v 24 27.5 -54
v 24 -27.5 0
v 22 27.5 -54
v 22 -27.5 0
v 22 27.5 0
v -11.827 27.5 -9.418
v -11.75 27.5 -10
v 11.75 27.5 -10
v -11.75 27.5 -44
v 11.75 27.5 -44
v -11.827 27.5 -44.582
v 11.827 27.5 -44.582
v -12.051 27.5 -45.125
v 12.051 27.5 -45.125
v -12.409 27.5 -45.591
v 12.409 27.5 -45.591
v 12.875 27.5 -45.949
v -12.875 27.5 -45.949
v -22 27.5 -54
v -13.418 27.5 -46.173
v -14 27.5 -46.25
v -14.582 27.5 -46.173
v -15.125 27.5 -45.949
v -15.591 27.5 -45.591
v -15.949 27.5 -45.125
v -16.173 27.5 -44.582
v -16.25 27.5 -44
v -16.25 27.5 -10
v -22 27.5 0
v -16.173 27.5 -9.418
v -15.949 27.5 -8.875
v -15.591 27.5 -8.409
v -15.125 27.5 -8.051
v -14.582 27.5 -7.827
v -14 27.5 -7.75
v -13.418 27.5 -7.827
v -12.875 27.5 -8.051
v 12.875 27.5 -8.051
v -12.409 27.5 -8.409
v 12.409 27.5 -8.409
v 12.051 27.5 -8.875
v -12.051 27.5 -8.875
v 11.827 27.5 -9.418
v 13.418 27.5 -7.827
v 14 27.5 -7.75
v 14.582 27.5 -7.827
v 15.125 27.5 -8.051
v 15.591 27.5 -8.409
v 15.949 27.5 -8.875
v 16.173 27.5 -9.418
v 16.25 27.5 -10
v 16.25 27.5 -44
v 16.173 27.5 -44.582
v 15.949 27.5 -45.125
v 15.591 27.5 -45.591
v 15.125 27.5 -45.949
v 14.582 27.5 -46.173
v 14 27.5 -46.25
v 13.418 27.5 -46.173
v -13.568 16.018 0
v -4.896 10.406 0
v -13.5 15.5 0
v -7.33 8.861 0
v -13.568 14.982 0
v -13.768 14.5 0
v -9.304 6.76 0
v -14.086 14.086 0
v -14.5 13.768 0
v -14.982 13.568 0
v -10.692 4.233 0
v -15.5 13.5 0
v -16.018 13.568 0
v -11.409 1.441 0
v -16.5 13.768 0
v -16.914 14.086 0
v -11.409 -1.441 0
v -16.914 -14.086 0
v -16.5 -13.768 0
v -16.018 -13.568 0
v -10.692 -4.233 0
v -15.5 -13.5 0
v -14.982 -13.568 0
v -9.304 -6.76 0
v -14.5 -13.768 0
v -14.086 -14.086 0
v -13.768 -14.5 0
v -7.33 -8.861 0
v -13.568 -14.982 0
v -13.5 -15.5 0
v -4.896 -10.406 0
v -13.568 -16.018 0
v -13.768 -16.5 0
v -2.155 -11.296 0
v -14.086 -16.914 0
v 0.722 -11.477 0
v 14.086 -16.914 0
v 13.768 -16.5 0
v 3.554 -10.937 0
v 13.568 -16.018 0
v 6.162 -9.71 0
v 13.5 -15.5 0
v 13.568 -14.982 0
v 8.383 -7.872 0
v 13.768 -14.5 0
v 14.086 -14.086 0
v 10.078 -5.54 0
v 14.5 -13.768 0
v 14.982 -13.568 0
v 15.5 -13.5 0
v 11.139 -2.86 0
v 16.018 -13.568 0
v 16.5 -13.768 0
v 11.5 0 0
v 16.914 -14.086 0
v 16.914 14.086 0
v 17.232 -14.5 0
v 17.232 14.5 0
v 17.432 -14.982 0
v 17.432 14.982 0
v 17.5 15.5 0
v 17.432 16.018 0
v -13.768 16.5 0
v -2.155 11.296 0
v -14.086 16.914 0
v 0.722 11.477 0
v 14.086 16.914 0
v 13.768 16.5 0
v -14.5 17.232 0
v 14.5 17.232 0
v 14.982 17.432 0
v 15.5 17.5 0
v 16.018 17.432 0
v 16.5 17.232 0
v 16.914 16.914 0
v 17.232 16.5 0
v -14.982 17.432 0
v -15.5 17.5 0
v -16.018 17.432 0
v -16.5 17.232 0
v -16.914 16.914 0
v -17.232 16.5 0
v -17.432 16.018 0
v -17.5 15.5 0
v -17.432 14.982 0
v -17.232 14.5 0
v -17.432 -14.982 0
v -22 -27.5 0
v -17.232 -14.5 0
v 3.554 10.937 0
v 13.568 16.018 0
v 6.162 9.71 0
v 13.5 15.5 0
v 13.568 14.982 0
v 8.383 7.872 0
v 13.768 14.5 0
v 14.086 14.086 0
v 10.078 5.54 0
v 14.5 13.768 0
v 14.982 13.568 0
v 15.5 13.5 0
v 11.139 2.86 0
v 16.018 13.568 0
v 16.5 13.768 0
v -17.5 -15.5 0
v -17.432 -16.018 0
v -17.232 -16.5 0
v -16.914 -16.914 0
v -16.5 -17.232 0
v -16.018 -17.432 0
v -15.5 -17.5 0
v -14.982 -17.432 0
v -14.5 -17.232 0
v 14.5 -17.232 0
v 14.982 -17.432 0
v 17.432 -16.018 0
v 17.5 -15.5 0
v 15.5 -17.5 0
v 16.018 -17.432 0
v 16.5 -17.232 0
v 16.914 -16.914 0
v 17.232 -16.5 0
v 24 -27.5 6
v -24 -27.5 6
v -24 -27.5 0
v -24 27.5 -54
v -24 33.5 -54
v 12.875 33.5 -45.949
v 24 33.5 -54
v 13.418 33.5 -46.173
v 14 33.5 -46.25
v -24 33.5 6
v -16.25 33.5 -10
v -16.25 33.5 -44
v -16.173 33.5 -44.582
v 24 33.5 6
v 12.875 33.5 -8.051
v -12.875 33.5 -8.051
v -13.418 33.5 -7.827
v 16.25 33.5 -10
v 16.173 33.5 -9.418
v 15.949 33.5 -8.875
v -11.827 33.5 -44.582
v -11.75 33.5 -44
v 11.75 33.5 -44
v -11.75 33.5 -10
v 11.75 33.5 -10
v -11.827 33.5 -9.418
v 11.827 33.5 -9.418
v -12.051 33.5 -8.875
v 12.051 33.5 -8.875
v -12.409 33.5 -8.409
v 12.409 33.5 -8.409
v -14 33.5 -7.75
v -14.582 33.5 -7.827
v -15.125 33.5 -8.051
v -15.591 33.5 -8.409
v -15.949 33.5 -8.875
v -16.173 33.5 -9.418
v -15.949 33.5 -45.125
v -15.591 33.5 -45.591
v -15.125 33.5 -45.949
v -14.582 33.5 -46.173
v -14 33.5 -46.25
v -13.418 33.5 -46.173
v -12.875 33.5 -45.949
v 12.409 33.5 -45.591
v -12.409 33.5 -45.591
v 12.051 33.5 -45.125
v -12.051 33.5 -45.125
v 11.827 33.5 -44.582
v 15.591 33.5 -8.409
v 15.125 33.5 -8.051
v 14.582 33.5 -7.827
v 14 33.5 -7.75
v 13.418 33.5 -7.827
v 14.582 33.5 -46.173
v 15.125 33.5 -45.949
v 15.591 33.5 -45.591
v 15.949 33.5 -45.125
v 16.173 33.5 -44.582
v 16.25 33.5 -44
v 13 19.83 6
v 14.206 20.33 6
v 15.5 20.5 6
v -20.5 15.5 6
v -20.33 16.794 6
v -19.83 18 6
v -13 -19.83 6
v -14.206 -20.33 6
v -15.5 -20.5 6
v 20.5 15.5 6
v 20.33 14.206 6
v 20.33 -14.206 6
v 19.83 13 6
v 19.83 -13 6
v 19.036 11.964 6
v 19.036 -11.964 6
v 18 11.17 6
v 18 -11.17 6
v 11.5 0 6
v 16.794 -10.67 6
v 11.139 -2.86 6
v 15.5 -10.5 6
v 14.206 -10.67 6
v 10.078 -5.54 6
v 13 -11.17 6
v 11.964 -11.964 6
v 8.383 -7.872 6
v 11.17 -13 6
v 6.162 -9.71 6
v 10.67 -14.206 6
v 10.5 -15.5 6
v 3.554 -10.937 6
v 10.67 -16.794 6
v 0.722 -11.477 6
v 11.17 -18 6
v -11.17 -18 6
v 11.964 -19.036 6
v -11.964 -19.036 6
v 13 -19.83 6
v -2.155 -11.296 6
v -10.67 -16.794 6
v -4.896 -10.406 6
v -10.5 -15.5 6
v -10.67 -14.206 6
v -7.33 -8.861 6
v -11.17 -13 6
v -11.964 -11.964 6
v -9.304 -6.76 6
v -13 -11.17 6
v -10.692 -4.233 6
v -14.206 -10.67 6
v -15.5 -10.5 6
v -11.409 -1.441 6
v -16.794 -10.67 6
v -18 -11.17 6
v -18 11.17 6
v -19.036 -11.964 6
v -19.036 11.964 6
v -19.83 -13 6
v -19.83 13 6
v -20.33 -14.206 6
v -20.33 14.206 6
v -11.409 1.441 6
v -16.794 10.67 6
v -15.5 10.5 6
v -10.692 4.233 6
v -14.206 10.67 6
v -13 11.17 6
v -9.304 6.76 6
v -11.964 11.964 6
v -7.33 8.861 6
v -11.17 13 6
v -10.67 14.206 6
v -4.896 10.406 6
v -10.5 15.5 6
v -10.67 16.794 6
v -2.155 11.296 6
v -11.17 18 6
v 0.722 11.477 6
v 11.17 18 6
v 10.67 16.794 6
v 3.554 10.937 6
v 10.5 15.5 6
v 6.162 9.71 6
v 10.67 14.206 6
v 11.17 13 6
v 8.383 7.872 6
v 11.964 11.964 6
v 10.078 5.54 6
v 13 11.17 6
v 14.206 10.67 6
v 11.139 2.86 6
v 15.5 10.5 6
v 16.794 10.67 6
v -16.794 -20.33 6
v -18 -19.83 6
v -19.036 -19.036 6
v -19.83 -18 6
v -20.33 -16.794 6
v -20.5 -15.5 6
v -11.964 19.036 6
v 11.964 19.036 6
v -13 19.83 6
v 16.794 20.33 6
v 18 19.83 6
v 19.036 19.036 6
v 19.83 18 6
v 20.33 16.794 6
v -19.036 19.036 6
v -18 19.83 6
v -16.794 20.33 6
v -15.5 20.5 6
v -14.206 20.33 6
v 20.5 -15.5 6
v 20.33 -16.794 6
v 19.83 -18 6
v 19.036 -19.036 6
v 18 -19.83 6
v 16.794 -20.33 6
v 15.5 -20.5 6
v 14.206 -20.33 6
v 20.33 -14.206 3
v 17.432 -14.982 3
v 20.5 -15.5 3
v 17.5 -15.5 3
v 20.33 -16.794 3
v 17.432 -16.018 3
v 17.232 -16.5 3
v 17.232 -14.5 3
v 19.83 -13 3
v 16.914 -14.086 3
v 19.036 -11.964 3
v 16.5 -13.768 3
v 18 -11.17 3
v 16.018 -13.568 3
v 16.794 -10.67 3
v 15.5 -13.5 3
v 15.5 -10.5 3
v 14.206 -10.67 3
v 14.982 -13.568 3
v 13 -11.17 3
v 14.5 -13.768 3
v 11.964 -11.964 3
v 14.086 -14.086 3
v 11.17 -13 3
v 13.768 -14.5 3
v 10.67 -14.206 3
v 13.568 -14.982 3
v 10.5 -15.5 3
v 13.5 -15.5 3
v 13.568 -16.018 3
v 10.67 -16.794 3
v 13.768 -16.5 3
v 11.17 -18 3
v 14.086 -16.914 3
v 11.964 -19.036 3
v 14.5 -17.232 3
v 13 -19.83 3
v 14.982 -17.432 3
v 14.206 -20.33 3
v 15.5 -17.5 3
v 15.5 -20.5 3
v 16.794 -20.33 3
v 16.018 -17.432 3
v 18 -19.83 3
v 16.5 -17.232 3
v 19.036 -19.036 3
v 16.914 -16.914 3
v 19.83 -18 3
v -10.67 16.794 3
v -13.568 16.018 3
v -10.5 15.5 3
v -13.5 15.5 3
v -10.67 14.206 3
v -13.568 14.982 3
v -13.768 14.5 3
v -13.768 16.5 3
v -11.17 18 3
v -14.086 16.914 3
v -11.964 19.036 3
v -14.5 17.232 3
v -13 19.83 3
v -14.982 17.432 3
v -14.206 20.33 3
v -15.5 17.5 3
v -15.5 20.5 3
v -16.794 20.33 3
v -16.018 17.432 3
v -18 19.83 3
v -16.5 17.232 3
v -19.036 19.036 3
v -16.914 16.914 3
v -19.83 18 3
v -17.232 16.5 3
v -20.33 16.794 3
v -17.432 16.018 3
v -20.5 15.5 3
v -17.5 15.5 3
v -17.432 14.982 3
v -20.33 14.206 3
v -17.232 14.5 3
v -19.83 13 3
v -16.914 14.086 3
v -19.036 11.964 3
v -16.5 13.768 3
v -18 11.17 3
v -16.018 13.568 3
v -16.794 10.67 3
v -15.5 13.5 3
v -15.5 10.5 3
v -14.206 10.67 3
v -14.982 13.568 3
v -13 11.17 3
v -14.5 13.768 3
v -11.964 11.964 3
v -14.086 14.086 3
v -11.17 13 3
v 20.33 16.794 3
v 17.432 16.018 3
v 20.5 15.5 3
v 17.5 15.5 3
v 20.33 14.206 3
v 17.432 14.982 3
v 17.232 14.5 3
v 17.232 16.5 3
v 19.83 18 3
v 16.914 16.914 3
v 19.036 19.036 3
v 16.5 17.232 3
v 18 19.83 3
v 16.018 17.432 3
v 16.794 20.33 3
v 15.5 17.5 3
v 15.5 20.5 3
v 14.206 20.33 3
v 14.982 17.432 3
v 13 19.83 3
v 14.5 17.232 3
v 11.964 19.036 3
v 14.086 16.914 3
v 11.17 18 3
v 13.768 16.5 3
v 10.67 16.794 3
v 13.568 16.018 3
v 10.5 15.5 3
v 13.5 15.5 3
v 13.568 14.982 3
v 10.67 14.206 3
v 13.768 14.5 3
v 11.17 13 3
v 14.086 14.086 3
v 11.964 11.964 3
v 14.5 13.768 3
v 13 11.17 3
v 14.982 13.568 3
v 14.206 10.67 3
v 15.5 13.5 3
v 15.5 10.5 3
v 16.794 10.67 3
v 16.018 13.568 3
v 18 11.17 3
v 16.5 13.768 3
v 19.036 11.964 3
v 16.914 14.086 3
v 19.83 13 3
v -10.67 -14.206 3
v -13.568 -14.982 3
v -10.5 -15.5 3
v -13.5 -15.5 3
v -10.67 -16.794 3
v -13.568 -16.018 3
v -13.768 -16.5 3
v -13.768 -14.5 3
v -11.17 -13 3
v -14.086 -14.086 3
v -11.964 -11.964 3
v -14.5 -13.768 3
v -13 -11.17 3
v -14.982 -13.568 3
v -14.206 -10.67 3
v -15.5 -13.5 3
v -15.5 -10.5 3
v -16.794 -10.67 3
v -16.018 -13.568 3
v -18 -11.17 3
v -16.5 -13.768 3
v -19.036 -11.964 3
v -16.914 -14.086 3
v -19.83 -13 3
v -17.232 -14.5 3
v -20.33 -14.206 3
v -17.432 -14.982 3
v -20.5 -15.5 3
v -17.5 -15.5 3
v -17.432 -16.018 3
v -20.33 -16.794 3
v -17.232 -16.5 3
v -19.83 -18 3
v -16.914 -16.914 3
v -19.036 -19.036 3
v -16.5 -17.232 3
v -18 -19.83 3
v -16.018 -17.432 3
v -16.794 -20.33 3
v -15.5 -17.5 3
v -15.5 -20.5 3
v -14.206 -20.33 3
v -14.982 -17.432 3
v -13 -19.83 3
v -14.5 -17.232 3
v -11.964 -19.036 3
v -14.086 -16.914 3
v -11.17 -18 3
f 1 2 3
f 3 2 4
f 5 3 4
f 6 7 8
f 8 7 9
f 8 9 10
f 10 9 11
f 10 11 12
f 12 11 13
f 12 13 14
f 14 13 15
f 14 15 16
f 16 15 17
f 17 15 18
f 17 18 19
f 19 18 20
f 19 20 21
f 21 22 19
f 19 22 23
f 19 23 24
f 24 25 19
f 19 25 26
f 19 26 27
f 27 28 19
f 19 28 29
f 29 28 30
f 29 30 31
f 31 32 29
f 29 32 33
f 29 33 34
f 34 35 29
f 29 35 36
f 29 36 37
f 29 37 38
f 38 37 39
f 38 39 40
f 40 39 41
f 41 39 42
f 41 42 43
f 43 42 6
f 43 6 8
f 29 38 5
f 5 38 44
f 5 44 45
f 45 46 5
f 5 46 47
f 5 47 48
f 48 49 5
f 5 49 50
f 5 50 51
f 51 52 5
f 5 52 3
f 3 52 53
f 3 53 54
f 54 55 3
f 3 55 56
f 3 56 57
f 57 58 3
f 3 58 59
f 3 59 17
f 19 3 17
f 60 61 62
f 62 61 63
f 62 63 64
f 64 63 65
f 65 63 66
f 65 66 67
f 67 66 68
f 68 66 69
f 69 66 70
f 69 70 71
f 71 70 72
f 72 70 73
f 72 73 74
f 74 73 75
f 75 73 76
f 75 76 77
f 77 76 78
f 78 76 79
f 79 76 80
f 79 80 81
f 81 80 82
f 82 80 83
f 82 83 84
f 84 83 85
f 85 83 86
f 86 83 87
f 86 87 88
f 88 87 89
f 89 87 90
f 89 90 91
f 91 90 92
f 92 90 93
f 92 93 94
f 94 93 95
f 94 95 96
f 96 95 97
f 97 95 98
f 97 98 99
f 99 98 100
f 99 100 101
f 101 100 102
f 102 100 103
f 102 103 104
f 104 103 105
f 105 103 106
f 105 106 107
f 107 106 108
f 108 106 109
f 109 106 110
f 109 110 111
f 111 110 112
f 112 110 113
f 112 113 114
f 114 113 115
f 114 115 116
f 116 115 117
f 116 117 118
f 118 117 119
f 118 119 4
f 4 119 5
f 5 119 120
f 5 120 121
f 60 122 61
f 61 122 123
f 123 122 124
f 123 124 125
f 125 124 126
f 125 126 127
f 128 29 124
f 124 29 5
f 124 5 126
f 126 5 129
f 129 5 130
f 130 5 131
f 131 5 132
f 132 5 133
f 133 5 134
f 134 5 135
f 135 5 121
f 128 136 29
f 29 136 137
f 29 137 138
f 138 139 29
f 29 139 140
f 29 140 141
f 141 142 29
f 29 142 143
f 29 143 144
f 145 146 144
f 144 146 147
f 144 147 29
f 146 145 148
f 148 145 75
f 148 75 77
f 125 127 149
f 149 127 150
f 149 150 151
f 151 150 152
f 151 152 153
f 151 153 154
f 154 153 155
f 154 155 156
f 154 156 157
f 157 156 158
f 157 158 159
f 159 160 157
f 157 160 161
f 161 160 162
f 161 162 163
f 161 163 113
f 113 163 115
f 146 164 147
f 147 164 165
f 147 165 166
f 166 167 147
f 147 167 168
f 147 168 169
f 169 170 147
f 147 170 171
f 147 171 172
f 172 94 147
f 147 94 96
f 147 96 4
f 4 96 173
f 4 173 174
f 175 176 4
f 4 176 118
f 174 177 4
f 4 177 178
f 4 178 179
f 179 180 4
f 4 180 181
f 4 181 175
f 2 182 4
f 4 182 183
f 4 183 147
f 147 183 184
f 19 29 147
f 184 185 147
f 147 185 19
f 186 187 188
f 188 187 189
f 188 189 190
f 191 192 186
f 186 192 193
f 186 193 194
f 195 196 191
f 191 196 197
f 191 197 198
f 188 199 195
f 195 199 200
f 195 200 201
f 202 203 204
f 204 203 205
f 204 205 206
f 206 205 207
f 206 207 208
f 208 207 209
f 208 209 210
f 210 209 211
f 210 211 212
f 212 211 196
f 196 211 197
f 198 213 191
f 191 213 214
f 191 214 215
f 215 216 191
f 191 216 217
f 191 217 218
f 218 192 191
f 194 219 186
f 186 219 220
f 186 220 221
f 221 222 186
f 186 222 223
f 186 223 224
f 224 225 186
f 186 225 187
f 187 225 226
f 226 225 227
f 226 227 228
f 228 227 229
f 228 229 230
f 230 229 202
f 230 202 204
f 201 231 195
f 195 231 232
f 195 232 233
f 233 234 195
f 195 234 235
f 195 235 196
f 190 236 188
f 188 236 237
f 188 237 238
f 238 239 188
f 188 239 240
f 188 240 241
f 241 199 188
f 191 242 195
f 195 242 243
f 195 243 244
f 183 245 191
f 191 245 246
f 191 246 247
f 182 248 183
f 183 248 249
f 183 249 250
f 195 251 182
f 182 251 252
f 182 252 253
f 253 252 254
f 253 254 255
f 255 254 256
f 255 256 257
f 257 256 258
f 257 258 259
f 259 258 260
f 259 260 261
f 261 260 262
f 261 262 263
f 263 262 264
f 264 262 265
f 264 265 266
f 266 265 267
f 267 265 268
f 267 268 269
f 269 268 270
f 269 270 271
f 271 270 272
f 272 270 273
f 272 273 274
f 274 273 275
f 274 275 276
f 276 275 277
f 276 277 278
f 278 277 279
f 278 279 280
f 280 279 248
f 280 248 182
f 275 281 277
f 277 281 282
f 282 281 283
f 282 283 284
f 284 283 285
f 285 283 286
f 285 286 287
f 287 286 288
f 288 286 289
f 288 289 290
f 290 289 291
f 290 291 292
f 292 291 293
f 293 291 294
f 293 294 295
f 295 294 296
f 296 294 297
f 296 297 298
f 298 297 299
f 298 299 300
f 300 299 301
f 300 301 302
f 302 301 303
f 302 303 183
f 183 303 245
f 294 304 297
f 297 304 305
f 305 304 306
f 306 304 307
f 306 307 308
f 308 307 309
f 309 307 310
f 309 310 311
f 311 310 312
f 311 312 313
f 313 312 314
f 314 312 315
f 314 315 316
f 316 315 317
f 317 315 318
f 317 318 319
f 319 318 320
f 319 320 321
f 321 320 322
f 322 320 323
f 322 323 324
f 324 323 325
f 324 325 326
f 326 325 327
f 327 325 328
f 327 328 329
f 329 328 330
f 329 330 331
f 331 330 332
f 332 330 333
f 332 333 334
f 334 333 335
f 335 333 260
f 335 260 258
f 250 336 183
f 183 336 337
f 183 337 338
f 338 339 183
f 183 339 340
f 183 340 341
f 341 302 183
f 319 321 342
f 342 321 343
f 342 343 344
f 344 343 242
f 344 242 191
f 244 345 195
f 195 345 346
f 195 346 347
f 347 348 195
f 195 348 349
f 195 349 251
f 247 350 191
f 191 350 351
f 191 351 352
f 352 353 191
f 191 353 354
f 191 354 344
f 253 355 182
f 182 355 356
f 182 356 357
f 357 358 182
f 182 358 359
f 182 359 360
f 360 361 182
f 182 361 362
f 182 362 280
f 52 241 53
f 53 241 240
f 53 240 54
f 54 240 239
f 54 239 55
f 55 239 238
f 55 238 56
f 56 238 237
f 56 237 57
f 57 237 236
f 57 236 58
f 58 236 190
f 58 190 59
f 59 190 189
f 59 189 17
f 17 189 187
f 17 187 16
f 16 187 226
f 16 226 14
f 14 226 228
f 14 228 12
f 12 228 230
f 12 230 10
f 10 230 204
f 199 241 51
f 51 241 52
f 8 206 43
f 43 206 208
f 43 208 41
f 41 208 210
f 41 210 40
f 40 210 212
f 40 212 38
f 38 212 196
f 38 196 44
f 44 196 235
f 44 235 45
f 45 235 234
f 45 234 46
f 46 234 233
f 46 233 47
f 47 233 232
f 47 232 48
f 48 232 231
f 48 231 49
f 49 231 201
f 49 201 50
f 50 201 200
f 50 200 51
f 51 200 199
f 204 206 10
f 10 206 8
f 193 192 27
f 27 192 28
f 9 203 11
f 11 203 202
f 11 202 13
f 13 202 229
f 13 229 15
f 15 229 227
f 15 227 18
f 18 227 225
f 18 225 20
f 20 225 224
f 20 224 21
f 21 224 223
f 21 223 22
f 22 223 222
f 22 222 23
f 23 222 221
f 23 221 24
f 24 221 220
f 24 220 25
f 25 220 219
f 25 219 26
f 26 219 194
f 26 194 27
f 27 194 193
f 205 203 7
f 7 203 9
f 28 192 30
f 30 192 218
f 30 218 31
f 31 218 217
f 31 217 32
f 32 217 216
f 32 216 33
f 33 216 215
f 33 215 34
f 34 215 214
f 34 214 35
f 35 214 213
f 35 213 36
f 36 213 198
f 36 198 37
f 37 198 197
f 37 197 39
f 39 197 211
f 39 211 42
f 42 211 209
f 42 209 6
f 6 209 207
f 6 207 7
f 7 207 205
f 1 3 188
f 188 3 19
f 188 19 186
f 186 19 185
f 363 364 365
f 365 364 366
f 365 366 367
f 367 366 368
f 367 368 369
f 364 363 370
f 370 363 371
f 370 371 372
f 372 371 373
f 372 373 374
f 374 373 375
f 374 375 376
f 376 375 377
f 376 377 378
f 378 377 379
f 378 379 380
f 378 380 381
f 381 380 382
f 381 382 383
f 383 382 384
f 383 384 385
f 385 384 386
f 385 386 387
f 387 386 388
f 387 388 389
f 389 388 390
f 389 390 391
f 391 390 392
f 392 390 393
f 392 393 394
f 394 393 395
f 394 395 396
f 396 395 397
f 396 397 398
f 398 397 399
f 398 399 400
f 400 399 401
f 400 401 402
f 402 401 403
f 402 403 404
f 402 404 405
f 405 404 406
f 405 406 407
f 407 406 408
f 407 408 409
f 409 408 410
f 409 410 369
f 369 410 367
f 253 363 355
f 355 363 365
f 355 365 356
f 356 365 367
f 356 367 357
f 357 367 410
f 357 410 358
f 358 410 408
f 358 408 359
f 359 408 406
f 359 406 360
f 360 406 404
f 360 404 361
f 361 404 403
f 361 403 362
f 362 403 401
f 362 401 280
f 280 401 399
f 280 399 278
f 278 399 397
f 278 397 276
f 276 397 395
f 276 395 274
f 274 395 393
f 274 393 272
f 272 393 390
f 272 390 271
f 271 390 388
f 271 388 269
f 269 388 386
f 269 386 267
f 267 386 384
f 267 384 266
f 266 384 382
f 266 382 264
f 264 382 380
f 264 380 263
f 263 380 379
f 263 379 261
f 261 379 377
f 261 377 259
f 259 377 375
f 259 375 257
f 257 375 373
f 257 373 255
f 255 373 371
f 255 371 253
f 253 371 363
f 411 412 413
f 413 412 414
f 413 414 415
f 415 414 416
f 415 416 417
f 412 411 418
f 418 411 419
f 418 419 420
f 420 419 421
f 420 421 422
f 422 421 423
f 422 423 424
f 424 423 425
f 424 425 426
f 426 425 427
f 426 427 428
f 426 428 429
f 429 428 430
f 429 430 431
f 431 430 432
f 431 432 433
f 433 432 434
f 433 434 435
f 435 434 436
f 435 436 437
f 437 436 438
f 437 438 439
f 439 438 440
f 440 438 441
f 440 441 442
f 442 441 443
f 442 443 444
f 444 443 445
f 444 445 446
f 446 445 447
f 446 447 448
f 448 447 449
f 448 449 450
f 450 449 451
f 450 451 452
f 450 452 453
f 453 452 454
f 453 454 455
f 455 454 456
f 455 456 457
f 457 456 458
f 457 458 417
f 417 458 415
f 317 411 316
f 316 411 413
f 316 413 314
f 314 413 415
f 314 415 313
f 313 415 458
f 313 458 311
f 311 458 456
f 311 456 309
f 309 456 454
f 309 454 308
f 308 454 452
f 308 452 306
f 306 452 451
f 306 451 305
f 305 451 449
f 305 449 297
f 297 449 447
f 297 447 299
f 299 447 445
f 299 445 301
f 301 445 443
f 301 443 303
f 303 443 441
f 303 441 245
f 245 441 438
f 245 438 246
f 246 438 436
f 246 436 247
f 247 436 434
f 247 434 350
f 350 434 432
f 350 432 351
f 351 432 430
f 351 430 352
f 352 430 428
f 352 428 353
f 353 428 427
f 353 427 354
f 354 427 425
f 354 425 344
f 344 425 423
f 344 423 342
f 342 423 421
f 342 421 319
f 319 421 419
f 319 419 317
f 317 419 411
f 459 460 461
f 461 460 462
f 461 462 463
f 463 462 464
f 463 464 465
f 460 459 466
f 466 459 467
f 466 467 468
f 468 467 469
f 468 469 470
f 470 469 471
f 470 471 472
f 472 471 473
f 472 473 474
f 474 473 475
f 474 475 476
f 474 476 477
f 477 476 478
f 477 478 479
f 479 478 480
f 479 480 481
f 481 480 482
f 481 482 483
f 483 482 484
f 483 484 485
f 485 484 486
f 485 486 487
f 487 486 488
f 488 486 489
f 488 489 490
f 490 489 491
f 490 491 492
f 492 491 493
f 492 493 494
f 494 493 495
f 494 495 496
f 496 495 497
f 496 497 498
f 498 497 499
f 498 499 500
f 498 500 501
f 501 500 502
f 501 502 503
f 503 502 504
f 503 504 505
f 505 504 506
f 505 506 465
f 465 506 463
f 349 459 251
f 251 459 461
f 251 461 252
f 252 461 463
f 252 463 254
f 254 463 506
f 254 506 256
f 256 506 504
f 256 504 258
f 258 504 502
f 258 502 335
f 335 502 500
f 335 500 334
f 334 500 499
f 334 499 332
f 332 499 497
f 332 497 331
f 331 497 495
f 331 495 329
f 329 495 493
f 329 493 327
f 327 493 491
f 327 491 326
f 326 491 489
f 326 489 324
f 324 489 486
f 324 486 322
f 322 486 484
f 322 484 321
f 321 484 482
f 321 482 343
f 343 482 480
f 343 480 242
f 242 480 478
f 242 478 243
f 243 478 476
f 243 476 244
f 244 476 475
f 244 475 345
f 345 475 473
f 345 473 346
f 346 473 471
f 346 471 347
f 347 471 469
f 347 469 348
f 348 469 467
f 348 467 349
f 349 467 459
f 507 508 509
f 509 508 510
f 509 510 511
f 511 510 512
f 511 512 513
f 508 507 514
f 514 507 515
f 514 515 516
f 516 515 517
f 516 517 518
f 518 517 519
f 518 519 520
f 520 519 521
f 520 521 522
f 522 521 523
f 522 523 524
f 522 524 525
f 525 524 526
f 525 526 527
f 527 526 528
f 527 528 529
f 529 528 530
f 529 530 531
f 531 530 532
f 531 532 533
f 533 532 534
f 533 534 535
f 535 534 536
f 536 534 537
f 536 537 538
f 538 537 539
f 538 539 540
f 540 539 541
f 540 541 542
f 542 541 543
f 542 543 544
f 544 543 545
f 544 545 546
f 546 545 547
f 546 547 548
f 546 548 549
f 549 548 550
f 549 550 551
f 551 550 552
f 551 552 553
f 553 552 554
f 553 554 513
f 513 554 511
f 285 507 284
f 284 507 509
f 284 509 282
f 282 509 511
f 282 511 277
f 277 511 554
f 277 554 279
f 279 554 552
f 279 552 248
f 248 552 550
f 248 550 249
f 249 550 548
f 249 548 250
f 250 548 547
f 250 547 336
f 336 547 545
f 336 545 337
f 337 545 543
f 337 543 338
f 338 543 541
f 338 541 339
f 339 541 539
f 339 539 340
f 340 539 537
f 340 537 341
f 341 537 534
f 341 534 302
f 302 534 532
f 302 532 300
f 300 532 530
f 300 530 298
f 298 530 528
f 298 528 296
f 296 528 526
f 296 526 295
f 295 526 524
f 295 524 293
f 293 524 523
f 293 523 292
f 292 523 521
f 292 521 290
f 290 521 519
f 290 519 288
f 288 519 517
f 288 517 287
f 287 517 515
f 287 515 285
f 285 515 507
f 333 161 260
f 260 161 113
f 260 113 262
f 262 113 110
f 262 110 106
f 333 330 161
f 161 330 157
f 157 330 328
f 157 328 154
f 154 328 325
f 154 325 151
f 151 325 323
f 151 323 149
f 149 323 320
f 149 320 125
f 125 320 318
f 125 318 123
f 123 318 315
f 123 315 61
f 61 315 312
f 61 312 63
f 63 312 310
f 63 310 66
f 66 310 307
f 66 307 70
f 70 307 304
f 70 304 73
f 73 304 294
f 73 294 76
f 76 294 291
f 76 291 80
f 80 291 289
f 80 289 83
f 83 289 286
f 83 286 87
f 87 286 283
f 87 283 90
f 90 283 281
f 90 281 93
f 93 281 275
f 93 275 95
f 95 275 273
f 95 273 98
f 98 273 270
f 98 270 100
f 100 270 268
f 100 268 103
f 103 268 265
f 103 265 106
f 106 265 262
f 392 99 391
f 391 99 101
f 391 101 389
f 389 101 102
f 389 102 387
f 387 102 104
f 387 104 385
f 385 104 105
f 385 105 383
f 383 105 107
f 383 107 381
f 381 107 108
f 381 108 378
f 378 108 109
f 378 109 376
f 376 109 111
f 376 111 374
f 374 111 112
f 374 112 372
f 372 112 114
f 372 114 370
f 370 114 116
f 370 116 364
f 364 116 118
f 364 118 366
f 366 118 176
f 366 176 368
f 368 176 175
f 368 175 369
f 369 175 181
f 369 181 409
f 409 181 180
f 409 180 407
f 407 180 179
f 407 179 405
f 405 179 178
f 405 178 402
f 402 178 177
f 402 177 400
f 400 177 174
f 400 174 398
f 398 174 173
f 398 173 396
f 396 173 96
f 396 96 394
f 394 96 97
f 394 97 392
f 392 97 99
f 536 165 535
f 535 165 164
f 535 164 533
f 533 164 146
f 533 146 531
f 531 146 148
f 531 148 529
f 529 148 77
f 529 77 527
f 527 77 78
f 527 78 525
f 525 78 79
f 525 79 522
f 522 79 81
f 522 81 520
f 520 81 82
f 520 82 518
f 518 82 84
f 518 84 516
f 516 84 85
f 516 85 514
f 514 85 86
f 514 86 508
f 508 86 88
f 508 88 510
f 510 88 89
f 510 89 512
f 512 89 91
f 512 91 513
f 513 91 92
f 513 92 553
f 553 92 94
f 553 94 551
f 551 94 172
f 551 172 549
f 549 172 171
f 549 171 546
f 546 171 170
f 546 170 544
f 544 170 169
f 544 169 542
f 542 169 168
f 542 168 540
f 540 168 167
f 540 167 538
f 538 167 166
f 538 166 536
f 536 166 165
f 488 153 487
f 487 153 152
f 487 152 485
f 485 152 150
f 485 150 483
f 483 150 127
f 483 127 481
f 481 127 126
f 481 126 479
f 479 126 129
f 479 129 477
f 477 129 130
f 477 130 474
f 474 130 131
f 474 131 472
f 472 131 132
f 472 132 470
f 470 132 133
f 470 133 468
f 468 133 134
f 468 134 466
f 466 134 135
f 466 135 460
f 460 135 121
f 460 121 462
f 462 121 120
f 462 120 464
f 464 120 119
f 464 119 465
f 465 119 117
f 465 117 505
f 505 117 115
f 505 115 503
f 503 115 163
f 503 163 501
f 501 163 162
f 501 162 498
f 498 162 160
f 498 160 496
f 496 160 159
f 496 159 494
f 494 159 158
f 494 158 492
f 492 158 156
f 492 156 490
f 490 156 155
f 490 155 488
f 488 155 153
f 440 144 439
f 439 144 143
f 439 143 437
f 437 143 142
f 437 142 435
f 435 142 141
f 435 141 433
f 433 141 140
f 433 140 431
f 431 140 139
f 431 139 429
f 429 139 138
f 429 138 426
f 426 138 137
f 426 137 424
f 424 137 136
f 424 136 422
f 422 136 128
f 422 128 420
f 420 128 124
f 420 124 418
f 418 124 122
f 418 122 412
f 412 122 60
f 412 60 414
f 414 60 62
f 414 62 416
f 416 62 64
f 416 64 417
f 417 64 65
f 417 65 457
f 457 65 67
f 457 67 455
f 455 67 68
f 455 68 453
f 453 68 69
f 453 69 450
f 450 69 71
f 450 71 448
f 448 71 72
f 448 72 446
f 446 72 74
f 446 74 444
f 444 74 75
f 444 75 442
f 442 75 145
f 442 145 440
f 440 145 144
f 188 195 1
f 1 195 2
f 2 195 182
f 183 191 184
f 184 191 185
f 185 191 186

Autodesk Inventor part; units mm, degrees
ref_plane "YZ Plane" through (0, 0, 0) normal (1, 0, 0) x (0, 1, 0)
ref_plane "XZ Plane" through (0, 0, 0) normal (0, 1, 0) x (-1, 0, 0)
ref_plane "XY Plane" through (0, 0, 0) normal (0, 0, 1) x (1, 0, 0)
sketch "Sketch1" plane through (0, 0, 0) normal (0, 0, 1) x (1, 0, 0)
  line L0 (-24, 27.5) -> (24, 27.5)
  line L1 (24, 27.5) -> (24, -27.5)
  line L2 (24, -27.5) -> (-24, -27.5)
  line L3 (-24, -27.5) -> (-24, 27.5)
  line L4 (-24, 27.5) -> (24, -27.5) construction
  line L5 (24, 27.5) -> (-24, -27.5) construction
  circle A0 centre (0, 0) radius 11.5
  line L6 (-15.5, 15.5) -> (15.5, -15.5) construction
  line L7 (15.5, 15.5) -> (-15.5, -15.5) construction
  circle A1 centre (-15.5, 15.5) radius 2
  circle A2 centre (15.5, 15.5) radius 2
  circle A3 centre (-15.5, -15.5) radius 2
  circle A4 centre (15.5, -15.5) radius 2
  dimension "d0" = 48
  dimension "d1" = 55
  dimension "d2" = 23
  dimension "d3" = 31
  dimension "d4" = 31
  dimension "d5" = 4
  dimension "d6" = 4
  dimension "d7" = 4
  dimension "d8" = 4
extrude "Extrusion1" add sketch "Sketch1" along normal blind 6
sketch "Sketch2" plane through (0, 0, 6) normal (0, 0, 1) x (1, 0, 0)
  circle A0 centre (-15.5, 15.5) radius 2 projected
  circle A1 centre (15.5, 15.5) radius 2 projected
  circle A2 centre (15.5, -15.5) radius 2 projected
  circle A3 centre (-15.5, -15.5) radius 2 projected
  point P0 (0, 0)
hole "Hole1" at (-15.5, 15.5, 6) at (15.5, 15.5, 6) at (15.5, -15.5, 6) at (-15.5, -15.5, 6) direction (0, 0, -1) diameter 4 end through all counterbore diameter 10 counterbore depth 3
sketch "Sketch4" plane through (-24, 27.5, 0) normal (0, 1, 0) x (1, 0, 0)
  line L0 (0, 0) -> (0, -6) projected
  line L1 (0, -6) -> (48, -6)
  line L2 (48, -6) -> (48, 54)
  line L3 (48, 54) -> (0, 54)
  line L4 (0, 54) -> (0, -6)
  point P0 (24, 0)
  dimension "d20" = 60
extrude "Extrusion2" add sketch "Sketch4" along normal blind 6
sketch "Sketch5" plane through (-24, 27.5, 0) normal (0, -1, 0) x (1, 0, 0)
  arc A0 (7.75, -44) -> (12.25, -44) centre (10, -44) ccw
  line L0 (0, -54) -> (0, 0) projected
  line L1 (0, -27) -> (48, -27)
  line L2 (48, 6) -> (48, -54) projected
  line L3 (24, 0) -> (24, -54)
  line L4 (48, -54) -> (0, -54) projected
  arc A1 (12.25, -10) -> (7.75, -10) centre (10, -10) ccw
  line L5 (7.75, -44) -> (7.75, -10)
  line L6 (12.25, -10) -> (12.25, -44)
  arc A2 (35.75, -44) -> (40.25, -44) centre (38, -44) ccw
  arc A3 (40.25, -10) -> (35.75, -10) centre (38, -10) ccw
  line L7 (40.25, -44) -> (40.25, -10)
  line L8 (35.75, -10) -> (35.75, -44)
  dimension "d23" = 4.5
  dimension "d25" = 10
  dimension "d26" = 10
extrude "Extrusion3" cut sketch "Sketch5" against normal through all contours L5 L1 L6 A0 | L5 A1 L6 L1 | L8 A3 L7 L1 | L1 L7 A2 L8
sketch "Sketch6" plane through (-24, -27.5, 0) normal (-1, 0, 0) x (0, 0, 1)
  line L0 (6, 0) -> (6, 61) projected
  line L1 (6, 0) -> (0, 0)
  line L2 (-54, 55) -> (0, 55) projected
  line L3 (0, 0) -> (-54, 55)
  line L4 (-54, 55) -> (-54, 61)
  line L5 (-54, 61) -> (6, 61) projected
  line L6 (-54, 61) -> (6, 61)
  line L7 (6, 0) -> (6, 61) projected
  line L8 (6, 61) -> (6, 0)
  line L9 (0, 0) -> (6, 0) projected
  line L10 (6, 0) -> (0, 0)
  point P0 (0, 27.5)
extrude "Extrusion4" add sketch "Sketch6" against normal blind 2
ref_plane "Work Plane1" through (0, -27.5, 6) normal (-1, 0, 0) x (0, 0, 1)
mirror "Mirror1" about plane through (0, -27.5, 6) normal (-1, 0, 0) of "Extrusion4"
properties part number "CarroXY-Motor"
